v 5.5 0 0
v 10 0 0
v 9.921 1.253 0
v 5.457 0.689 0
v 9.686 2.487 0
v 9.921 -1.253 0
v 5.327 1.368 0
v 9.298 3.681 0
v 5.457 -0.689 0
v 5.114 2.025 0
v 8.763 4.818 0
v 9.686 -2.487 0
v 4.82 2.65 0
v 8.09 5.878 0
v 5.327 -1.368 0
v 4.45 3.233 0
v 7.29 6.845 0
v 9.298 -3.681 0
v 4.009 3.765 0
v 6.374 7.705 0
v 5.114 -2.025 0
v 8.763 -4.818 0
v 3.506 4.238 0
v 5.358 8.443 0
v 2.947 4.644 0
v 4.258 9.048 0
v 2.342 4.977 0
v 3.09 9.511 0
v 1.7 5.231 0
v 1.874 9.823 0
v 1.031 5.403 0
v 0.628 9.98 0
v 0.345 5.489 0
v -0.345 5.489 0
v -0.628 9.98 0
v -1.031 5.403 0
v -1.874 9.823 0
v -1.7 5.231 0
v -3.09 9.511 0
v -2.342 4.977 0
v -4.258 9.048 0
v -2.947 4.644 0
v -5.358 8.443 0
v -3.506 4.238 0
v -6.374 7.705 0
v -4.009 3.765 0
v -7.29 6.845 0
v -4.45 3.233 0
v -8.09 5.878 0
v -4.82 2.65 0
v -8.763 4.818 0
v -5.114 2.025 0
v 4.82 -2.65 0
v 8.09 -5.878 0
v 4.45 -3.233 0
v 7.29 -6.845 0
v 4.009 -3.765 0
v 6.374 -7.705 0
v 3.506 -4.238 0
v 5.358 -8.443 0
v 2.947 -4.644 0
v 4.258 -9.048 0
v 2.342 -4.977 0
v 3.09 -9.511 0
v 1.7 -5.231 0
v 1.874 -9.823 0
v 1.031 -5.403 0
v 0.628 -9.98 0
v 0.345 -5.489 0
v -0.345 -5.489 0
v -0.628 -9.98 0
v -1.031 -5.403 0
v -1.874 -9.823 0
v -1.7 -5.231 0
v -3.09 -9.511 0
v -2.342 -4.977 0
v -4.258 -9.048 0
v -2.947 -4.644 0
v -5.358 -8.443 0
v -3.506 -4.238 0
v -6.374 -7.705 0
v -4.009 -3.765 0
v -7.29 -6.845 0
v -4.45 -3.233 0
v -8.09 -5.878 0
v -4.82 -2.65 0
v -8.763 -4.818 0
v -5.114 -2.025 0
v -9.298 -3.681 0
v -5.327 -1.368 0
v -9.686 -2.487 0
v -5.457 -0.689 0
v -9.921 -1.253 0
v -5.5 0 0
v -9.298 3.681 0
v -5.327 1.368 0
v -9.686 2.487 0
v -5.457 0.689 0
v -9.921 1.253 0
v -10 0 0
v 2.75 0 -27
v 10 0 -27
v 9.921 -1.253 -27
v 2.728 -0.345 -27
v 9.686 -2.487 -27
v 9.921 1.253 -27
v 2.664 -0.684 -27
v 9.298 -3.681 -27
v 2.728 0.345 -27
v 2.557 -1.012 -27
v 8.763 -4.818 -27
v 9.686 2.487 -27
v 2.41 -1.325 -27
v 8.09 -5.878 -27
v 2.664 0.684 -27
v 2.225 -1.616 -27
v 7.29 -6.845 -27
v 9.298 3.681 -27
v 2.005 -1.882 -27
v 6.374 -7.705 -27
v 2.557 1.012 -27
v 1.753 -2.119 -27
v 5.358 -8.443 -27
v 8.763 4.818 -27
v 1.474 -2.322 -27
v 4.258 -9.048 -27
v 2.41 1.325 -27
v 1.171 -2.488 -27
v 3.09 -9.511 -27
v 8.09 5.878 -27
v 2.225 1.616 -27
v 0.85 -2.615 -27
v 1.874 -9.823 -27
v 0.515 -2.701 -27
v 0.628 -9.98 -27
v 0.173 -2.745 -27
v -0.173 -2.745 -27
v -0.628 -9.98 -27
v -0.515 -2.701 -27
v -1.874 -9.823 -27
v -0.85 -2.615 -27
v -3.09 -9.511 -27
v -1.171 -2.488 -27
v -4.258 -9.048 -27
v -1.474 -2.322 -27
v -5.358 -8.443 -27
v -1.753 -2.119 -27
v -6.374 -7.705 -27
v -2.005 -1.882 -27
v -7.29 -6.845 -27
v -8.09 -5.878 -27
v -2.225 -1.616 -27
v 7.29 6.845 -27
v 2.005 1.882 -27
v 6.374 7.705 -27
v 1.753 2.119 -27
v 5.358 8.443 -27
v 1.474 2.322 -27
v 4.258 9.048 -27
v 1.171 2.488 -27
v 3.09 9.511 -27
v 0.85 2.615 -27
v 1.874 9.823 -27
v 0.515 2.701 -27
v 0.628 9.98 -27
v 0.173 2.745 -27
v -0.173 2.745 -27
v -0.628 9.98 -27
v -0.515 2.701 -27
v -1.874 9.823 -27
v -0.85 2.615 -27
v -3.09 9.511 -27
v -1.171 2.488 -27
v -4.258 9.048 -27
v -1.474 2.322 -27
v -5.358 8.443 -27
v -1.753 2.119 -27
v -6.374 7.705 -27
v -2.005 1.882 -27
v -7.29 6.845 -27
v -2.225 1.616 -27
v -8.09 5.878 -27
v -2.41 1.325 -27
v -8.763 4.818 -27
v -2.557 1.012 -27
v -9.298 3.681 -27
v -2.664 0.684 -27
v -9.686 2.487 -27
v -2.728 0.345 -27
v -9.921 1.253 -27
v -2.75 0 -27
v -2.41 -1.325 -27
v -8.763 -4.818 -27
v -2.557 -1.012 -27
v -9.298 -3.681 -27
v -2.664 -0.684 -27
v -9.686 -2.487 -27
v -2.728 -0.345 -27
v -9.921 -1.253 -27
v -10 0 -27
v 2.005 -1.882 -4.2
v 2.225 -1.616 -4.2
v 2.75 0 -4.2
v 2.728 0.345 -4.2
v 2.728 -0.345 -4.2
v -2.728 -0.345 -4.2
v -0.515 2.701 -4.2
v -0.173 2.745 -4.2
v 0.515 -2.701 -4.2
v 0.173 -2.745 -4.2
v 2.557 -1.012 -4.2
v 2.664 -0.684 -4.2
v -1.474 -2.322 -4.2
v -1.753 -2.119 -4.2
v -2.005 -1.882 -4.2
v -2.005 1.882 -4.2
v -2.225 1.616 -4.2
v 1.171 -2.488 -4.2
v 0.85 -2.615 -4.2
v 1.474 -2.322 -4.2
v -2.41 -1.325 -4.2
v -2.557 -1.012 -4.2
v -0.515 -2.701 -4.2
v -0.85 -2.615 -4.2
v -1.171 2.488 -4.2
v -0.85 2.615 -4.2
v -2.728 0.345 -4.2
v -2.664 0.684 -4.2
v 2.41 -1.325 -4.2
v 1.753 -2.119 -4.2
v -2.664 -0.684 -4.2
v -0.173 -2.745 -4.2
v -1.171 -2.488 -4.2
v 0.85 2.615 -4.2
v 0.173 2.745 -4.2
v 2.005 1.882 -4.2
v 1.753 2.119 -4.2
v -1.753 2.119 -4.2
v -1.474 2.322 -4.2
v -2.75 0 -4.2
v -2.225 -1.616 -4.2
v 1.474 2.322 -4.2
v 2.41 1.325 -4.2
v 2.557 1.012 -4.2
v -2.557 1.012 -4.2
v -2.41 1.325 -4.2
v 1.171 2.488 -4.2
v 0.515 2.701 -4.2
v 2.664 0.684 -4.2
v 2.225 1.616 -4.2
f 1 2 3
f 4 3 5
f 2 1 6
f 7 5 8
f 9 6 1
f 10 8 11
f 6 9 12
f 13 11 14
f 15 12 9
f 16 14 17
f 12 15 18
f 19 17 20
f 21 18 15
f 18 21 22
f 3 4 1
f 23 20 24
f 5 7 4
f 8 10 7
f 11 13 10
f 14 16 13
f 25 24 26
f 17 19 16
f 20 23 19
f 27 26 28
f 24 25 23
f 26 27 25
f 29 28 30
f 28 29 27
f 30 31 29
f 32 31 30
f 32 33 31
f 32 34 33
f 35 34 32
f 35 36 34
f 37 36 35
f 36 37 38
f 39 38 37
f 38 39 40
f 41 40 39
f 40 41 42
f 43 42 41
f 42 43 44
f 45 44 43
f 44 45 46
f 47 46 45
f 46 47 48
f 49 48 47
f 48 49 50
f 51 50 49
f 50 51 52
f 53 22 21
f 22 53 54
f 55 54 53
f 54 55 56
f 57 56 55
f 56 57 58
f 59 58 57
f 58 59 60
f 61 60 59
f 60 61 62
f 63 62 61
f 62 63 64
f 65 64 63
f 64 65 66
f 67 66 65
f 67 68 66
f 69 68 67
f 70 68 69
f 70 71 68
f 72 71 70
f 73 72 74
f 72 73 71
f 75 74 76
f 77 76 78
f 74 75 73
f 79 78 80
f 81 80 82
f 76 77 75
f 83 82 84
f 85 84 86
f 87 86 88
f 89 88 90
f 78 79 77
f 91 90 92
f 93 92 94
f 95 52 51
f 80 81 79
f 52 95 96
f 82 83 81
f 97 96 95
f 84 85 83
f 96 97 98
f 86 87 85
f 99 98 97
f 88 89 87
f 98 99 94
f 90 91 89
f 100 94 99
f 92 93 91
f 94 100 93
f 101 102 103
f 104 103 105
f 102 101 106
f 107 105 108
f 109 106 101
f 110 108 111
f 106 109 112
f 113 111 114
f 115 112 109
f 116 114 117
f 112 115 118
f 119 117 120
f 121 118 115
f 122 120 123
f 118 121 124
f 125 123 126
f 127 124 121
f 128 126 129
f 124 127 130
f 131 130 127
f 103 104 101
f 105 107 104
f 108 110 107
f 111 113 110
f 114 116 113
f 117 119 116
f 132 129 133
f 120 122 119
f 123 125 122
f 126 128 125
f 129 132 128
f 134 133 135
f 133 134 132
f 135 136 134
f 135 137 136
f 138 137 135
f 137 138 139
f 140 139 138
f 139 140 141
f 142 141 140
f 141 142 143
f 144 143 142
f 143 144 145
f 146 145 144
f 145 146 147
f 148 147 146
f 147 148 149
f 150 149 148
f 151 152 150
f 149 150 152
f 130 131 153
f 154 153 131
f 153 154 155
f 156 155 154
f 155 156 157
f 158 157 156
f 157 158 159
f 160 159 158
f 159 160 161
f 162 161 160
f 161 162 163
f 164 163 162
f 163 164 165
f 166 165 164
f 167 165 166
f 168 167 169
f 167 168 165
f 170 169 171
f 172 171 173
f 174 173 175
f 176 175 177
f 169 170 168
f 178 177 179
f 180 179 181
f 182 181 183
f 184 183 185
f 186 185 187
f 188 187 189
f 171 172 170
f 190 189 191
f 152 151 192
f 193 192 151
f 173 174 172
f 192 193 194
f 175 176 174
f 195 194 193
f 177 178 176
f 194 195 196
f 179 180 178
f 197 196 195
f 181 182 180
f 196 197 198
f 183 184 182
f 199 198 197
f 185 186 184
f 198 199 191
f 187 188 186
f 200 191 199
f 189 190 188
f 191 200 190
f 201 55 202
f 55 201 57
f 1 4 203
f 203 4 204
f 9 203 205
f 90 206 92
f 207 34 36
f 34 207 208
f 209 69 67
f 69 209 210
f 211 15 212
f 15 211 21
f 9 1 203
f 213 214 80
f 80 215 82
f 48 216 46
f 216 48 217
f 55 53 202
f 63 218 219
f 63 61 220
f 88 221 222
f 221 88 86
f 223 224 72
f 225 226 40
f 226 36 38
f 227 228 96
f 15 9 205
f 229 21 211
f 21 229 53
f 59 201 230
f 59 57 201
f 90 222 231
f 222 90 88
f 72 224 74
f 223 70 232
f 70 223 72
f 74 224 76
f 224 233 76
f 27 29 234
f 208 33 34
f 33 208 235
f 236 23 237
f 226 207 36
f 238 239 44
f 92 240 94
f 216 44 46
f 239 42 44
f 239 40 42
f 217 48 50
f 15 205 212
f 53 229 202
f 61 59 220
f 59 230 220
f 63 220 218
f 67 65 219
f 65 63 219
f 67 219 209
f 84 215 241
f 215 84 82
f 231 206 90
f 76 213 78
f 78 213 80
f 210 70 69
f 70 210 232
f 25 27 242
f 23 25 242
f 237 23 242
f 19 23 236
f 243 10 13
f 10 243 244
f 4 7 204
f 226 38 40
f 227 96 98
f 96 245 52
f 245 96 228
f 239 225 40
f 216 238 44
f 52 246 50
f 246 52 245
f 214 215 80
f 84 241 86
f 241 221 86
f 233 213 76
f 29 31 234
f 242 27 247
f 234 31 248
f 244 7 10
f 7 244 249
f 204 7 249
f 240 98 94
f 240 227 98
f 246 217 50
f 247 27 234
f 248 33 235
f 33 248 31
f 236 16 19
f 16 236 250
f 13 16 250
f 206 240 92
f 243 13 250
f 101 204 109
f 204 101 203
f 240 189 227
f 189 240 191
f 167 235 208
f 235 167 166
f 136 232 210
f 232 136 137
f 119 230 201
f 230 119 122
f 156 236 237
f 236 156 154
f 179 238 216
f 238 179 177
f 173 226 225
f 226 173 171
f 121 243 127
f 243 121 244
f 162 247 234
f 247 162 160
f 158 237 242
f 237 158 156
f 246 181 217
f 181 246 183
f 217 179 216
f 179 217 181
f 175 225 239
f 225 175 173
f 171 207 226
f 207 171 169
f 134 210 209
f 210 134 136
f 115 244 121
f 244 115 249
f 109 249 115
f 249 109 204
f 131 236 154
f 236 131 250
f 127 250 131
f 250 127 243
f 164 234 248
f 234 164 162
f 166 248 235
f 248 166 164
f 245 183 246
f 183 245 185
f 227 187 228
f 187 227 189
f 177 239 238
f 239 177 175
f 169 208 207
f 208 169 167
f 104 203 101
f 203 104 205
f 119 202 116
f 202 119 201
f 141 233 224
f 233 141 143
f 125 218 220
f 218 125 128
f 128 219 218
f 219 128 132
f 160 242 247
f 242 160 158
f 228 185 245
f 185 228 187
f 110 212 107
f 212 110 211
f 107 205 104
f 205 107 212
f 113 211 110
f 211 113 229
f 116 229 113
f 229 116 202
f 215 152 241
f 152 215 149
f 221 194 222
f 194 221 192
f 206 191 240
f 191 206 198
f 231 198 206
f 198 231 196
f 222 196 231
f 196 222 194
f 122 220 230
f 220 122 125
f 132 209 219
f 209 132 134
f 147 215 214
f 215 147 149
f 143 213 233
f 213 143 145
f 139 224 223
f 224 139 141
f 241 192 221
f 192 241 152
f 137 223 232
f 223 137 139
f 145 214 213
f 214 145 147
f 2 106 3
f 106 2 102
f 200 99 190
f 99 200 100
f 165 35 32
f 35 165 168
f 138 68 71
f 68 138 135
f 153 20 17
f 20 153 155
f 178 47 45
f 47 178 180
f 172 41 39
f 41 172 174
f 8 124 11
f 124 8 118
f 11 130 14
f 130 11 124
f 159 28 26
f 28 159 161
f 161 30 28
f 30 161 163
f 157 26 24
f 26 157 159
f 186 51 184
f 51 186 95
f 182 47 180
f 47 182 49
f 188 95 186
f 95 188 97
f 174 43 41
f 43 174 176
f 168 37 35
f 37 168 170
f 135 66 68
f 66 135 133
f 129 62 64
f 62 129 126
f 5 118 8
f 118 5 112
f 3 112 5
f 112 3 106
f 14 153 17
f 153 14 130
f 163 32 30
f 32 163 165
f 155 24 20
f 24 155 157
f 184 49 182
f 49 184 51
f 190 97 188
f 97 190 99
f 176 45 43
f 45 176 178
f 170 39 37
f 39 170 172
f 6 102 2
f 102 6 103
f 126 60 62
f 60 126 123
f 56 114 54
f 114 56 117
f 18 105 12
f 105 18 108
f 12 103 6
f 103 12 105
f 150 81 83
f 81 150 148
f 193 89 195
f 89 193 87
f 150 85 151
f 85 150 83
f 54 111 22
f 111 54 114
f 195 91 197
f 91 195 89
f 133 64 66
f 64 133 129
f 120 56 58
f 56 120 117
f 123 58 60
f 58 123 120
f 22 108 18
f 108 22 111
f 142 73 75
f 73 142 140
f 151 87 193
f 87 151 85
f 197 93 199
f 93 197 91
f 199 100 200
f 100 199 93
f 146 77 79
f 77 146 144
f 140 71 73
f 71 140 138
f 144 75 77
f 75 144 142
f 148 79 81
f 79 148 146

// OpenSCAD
$fn = 50;


difference() {
	union() {
		translate(v = [0, 0, -27.0000000000]) {
			cylinder(h = 27, r = 10.0000000000);
		}
	}
	union() {
		translate(v = [0, 0, 0]) {
			rotate(a = [0, 0, 0]) {
				difference() {
					union() {
						#translate(v = [0, 0, -27.0000000000]) {
							cylinder(h = 27, r = 2.2500000000);
						}
						#translate(v = [0, 0, -4.2000000000]) {
							cylinder(h = 4.2000000000, r1 = 2.7500000000, r2 = 5.5000000000);
						}
						#translate(v = [0, 0, -27.0000000000]) {
							cylinder(h = 27, r = 2.7500000000);
						}
						#translate(v = [0, 0, -27.0000000000]) {
							cylinder(h = 27, r = 2.2500000000);
						}
					}
					union();
				}
			}
		}
	}
}
